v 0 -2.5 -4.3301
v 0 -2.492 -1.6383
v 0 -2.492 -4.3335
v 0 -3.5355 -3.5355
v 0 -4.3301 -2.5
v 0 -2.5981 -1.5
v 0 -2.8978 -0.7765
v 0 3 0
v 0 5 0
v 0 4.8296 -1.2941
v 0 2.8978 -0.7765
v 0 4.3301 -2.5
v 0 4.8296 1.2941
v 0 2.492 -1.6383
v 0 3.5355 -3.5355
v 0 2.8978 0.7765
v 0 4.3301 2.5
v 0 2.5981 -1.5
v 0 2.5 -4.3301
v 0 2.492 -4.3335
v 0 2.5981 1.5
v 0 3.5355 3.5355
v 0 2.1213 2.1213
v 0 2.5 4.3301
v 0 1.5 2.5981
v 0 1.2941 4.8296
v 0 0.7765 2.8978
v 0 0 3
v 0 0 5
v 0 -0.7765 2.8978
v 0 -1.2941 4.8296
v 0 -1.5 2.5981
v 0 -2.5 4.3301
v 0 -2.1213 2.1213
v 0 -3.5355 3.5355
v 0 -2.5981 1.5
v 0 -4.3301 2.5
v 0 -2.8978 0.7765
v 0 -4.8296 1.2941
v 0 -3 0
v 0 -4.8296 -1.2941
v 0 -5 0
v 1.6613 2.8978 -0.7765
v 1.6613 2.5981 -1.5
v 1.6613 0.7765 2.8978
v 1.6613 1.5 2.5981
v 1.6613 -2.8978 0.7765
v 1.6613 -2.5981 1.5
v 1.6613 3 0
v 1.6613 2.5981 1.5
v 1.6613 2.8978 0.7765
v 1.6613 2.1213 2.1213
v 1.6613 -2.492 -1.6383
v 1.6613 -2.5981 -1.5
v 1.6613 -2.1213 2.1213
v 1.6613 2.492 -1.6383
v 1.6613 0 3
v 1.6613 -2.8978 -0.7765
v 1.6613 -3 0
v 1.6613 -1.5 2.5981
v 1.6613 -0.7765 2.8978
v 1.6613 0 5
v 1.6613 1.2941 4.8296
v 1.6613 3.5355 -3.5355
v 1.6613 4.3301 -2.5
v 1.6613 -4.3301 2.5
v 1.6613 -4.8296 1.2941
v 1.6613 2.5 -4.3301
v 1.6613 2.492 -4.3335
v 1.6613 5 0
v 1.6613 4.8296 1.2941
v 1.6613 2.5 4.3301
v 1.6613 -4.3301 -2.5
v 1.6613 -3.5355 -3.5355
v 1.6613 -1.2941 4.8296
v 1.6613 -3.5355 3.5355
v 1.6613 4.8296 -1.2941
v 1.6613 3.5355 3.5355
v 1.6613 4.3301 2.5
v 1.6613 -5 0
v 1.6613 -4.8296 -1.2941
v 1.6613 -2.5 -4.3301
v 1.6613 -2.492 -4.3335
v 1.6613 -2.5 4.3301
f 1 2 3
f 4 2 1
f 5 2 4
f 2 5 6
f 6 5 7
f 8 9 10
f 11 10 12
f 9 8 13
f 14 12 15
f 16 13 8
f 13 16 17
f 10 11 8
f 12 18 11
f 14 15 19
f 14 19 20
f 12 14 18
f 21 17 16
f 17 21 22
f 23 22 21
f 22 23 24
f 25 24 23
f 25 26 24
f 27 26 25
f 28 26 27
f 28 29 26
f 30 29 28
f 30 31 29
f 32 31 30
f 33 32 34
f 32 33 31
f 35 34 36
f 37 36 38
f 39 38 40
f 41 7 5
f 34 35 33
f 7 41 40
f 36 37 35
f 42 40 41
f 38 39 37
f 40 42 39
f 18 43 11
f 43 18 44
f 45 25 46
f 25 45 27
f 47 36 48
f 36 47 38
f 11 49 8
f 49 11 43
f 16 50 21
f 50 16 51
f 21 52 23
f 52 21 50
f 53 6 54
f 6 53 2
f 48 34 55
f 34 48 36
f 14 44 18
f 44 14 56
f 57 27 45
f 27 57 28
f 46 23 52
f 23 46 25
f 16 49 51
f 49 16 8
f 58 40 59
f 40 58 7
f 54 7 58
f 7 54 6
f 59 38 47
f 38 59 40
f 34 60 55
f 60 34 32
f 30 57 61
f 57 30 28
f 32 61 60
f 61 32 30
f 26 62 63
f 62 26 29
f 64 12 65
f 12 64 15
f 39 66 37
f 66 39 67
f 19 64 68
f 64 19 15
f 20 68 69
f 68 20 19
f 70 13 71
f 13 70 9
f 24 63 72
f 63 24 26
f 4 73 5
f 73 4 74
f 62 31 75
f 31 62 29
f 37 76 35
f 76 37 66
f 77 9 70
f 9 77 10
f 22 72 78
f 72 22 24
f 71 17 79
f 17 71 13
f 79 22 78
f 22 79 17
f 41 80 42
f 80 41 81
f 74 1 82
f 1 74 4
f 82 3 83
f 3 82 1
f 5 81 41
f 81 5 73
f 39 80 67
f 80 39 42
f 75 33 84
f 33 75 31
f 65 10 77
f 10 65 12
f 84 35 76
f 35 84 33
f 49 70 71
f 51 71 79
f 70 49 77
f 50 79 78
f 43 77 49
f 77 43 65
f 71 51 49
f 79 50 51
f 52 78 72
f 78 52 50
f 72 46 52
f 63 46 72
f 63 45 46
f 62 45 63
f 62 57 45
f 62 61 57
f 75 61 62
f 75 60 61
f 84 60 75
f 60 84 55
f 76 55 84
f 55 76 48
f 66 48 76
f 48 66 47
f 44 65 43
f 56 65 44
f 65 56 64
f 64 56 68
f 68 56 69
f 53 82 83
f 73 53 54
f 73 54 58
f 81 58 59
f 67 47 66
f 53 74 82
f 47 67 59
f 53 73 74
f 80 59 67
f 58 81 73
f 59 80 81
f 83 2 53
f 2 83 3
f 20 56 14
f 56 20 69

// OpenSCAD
// file: ../build_environments.scad
// build_environments.scad: modules to build level sections
//

module pool(diameter=10.0, wall_height=2.0, step_width=3.0, connections=[])
{
    difference() {
        union() {
        difference() {
            cylinder(h=0.5,r1=diameter+step_width,r2=diameter+step_width,$fn=48);
            translate([0,0,-0.1])
                cylinder(h=0.7,r1=diameter,r2=diameter,$fn=48);
        }
        difference() {
            cylinder(h=wall_height,r1=diameter+step_width+1.0,r2=diameter+step_width+1.0,$fn=48);
            translate([0,0,-0.1])
                cylinder(h=wall_height+0.2,r1=diameter+step_width,r2=diameter+step_width,$fn=48);
        }
        }
    
        for (c = connections)
        {
            rotate([0,90,0]) {
                angle = atan2(c[1],c[0]);
                rotate([-angle,0,0]) {
                    cylinder(h=diameter+5.0,r1=c[2],r2=c[2],$fn=48);
                }
            }
        }
    }
}

module straight(length=10.0, width=2.0, dy1=0.0, dy2=0.0, dz=0.0)
{
    dims = [0, 0, 0, 0, 0, (dz/length)];
    matrix = [
        [ 1, dims[0], dims[1], 0 ],
        [ dims[2], 1, dims[4], 0 ],
        [ dims[5], dims[3], 1, 0 ],
        [ 0, 0, 0, 1 ]
    ];
    multmatrix(matrix)
    difference() {
        translate([dy1,0,0])
        union() {
            rotate([0,90,0]) {
                difference() {
                    cylinder(h=(length-dy1-dy2),r1=width+1.0,r2=width+1.0,$fn=24);
                    translate([0,0,-0.1])
                        cylinder(h=(length-dy1-dy2+0.2),r1=width,r2=width,$fn=24);
                }
                difference() {
                    cylinder(h=1.0,r1=width+2.0,r2=width+2.0,$fn=24);
                    translate([0,0,-0.1])
                        cylinder(h=1.2,r1=width,r2=width,$fn=24);
                }
                translate([0,0,(length-dy1-dy2)-1.0]) {
                    difference() {
                        cylinder(h=1.0,r1=width+2.0,r2=width+2.0,$fn=24);
                        translate([0,0,-0.1])
                            cylinder(h=1.2,r1=width,r2=width,$fn=24);
                    }
                }
            }
        }
        translate([0,0,-(2*width+4.0)/2])
            cube([3*length,3*length,2*width+4.0],center=true);
    }
}

module curve(p0=[0,0], center=[0,0], dir=1, angle=0.0, width=2.0)
{
    radius = sqrt((p0[0]-center[0])*(p0[0]-center[0]) + (p0[1]-center[1])*(p0[1]-center[1]));
    if (dir == 0) {
        difference() {
            rotate([0,0,-90])
            difference() {
                rotate_extrude(angle = angle, convexity = 10, $fn=32)
                    translate([radius, 0, 0])
                        circle(r = width+1.0,$fn=24);
                rotate([0,0,-1.0])
                    rotate_extrude(angle = angle+2.0, convexity = 10, $fn=32)
                        translate([radius, 0, 0])
                            circle(r = width,$fn=24);
            }
            translate([0,0,-(2*width+4.0)/2])
                cube([5*radius,5*radius,2*width+4.0],center=true);
        }
    }
    else {
        difference() {
            rotate([0,0,90])
            difference() {
                rotate_extrude(angle = -angle, convexity = 10, $fn=32)
                    translate([radius, 0, 0])
                        circle(r = width+1.0,$fn=24);
                rotate([0,0,1.0])
                    rotate_extrude(angle = -angle-2.0, convexity = 10, $fn=32)
                        translate([radius, 0, 0])
                            circle(r = width,$fn=24);
            }
            translate([0,0,-(2*width+4.0)/2])
                cube([5*radius,5*radius,2*width+4.0],center=true);
        }
    }

}

// test pool
//pool(diameter=12.0000, wall_height=3.0000, step_width=3.0000, connections=[[0.0000,-26.0000,2.0000], [23.6074,0.0000,2.0000]]);

// test straight, slope
//straight(length=26.0000, width=2.0000, dy1=11.8322, dy2=6.7082, dz=0.0000);
//straight(length=29.1549, width=12.0000, dy1=0.0000, dy2=0.0000, dz=-15.0000);

// test curve
//curve(p0=[23.6074, 0.0000], center=[23.6074, 5.0000], dir=0, angle=60.1011, width=2.0000);
//curve(p0=[33.6426, 12.4219], center=[37.9771, 9.9295], dir=1, angle=120.4627, width=2.0000);
// main file
use <../build_environments.scad>;
straight(length=1.6613, width=3.0000, dy1=0.0000, dy2=0.0000, dz=0.0000);
